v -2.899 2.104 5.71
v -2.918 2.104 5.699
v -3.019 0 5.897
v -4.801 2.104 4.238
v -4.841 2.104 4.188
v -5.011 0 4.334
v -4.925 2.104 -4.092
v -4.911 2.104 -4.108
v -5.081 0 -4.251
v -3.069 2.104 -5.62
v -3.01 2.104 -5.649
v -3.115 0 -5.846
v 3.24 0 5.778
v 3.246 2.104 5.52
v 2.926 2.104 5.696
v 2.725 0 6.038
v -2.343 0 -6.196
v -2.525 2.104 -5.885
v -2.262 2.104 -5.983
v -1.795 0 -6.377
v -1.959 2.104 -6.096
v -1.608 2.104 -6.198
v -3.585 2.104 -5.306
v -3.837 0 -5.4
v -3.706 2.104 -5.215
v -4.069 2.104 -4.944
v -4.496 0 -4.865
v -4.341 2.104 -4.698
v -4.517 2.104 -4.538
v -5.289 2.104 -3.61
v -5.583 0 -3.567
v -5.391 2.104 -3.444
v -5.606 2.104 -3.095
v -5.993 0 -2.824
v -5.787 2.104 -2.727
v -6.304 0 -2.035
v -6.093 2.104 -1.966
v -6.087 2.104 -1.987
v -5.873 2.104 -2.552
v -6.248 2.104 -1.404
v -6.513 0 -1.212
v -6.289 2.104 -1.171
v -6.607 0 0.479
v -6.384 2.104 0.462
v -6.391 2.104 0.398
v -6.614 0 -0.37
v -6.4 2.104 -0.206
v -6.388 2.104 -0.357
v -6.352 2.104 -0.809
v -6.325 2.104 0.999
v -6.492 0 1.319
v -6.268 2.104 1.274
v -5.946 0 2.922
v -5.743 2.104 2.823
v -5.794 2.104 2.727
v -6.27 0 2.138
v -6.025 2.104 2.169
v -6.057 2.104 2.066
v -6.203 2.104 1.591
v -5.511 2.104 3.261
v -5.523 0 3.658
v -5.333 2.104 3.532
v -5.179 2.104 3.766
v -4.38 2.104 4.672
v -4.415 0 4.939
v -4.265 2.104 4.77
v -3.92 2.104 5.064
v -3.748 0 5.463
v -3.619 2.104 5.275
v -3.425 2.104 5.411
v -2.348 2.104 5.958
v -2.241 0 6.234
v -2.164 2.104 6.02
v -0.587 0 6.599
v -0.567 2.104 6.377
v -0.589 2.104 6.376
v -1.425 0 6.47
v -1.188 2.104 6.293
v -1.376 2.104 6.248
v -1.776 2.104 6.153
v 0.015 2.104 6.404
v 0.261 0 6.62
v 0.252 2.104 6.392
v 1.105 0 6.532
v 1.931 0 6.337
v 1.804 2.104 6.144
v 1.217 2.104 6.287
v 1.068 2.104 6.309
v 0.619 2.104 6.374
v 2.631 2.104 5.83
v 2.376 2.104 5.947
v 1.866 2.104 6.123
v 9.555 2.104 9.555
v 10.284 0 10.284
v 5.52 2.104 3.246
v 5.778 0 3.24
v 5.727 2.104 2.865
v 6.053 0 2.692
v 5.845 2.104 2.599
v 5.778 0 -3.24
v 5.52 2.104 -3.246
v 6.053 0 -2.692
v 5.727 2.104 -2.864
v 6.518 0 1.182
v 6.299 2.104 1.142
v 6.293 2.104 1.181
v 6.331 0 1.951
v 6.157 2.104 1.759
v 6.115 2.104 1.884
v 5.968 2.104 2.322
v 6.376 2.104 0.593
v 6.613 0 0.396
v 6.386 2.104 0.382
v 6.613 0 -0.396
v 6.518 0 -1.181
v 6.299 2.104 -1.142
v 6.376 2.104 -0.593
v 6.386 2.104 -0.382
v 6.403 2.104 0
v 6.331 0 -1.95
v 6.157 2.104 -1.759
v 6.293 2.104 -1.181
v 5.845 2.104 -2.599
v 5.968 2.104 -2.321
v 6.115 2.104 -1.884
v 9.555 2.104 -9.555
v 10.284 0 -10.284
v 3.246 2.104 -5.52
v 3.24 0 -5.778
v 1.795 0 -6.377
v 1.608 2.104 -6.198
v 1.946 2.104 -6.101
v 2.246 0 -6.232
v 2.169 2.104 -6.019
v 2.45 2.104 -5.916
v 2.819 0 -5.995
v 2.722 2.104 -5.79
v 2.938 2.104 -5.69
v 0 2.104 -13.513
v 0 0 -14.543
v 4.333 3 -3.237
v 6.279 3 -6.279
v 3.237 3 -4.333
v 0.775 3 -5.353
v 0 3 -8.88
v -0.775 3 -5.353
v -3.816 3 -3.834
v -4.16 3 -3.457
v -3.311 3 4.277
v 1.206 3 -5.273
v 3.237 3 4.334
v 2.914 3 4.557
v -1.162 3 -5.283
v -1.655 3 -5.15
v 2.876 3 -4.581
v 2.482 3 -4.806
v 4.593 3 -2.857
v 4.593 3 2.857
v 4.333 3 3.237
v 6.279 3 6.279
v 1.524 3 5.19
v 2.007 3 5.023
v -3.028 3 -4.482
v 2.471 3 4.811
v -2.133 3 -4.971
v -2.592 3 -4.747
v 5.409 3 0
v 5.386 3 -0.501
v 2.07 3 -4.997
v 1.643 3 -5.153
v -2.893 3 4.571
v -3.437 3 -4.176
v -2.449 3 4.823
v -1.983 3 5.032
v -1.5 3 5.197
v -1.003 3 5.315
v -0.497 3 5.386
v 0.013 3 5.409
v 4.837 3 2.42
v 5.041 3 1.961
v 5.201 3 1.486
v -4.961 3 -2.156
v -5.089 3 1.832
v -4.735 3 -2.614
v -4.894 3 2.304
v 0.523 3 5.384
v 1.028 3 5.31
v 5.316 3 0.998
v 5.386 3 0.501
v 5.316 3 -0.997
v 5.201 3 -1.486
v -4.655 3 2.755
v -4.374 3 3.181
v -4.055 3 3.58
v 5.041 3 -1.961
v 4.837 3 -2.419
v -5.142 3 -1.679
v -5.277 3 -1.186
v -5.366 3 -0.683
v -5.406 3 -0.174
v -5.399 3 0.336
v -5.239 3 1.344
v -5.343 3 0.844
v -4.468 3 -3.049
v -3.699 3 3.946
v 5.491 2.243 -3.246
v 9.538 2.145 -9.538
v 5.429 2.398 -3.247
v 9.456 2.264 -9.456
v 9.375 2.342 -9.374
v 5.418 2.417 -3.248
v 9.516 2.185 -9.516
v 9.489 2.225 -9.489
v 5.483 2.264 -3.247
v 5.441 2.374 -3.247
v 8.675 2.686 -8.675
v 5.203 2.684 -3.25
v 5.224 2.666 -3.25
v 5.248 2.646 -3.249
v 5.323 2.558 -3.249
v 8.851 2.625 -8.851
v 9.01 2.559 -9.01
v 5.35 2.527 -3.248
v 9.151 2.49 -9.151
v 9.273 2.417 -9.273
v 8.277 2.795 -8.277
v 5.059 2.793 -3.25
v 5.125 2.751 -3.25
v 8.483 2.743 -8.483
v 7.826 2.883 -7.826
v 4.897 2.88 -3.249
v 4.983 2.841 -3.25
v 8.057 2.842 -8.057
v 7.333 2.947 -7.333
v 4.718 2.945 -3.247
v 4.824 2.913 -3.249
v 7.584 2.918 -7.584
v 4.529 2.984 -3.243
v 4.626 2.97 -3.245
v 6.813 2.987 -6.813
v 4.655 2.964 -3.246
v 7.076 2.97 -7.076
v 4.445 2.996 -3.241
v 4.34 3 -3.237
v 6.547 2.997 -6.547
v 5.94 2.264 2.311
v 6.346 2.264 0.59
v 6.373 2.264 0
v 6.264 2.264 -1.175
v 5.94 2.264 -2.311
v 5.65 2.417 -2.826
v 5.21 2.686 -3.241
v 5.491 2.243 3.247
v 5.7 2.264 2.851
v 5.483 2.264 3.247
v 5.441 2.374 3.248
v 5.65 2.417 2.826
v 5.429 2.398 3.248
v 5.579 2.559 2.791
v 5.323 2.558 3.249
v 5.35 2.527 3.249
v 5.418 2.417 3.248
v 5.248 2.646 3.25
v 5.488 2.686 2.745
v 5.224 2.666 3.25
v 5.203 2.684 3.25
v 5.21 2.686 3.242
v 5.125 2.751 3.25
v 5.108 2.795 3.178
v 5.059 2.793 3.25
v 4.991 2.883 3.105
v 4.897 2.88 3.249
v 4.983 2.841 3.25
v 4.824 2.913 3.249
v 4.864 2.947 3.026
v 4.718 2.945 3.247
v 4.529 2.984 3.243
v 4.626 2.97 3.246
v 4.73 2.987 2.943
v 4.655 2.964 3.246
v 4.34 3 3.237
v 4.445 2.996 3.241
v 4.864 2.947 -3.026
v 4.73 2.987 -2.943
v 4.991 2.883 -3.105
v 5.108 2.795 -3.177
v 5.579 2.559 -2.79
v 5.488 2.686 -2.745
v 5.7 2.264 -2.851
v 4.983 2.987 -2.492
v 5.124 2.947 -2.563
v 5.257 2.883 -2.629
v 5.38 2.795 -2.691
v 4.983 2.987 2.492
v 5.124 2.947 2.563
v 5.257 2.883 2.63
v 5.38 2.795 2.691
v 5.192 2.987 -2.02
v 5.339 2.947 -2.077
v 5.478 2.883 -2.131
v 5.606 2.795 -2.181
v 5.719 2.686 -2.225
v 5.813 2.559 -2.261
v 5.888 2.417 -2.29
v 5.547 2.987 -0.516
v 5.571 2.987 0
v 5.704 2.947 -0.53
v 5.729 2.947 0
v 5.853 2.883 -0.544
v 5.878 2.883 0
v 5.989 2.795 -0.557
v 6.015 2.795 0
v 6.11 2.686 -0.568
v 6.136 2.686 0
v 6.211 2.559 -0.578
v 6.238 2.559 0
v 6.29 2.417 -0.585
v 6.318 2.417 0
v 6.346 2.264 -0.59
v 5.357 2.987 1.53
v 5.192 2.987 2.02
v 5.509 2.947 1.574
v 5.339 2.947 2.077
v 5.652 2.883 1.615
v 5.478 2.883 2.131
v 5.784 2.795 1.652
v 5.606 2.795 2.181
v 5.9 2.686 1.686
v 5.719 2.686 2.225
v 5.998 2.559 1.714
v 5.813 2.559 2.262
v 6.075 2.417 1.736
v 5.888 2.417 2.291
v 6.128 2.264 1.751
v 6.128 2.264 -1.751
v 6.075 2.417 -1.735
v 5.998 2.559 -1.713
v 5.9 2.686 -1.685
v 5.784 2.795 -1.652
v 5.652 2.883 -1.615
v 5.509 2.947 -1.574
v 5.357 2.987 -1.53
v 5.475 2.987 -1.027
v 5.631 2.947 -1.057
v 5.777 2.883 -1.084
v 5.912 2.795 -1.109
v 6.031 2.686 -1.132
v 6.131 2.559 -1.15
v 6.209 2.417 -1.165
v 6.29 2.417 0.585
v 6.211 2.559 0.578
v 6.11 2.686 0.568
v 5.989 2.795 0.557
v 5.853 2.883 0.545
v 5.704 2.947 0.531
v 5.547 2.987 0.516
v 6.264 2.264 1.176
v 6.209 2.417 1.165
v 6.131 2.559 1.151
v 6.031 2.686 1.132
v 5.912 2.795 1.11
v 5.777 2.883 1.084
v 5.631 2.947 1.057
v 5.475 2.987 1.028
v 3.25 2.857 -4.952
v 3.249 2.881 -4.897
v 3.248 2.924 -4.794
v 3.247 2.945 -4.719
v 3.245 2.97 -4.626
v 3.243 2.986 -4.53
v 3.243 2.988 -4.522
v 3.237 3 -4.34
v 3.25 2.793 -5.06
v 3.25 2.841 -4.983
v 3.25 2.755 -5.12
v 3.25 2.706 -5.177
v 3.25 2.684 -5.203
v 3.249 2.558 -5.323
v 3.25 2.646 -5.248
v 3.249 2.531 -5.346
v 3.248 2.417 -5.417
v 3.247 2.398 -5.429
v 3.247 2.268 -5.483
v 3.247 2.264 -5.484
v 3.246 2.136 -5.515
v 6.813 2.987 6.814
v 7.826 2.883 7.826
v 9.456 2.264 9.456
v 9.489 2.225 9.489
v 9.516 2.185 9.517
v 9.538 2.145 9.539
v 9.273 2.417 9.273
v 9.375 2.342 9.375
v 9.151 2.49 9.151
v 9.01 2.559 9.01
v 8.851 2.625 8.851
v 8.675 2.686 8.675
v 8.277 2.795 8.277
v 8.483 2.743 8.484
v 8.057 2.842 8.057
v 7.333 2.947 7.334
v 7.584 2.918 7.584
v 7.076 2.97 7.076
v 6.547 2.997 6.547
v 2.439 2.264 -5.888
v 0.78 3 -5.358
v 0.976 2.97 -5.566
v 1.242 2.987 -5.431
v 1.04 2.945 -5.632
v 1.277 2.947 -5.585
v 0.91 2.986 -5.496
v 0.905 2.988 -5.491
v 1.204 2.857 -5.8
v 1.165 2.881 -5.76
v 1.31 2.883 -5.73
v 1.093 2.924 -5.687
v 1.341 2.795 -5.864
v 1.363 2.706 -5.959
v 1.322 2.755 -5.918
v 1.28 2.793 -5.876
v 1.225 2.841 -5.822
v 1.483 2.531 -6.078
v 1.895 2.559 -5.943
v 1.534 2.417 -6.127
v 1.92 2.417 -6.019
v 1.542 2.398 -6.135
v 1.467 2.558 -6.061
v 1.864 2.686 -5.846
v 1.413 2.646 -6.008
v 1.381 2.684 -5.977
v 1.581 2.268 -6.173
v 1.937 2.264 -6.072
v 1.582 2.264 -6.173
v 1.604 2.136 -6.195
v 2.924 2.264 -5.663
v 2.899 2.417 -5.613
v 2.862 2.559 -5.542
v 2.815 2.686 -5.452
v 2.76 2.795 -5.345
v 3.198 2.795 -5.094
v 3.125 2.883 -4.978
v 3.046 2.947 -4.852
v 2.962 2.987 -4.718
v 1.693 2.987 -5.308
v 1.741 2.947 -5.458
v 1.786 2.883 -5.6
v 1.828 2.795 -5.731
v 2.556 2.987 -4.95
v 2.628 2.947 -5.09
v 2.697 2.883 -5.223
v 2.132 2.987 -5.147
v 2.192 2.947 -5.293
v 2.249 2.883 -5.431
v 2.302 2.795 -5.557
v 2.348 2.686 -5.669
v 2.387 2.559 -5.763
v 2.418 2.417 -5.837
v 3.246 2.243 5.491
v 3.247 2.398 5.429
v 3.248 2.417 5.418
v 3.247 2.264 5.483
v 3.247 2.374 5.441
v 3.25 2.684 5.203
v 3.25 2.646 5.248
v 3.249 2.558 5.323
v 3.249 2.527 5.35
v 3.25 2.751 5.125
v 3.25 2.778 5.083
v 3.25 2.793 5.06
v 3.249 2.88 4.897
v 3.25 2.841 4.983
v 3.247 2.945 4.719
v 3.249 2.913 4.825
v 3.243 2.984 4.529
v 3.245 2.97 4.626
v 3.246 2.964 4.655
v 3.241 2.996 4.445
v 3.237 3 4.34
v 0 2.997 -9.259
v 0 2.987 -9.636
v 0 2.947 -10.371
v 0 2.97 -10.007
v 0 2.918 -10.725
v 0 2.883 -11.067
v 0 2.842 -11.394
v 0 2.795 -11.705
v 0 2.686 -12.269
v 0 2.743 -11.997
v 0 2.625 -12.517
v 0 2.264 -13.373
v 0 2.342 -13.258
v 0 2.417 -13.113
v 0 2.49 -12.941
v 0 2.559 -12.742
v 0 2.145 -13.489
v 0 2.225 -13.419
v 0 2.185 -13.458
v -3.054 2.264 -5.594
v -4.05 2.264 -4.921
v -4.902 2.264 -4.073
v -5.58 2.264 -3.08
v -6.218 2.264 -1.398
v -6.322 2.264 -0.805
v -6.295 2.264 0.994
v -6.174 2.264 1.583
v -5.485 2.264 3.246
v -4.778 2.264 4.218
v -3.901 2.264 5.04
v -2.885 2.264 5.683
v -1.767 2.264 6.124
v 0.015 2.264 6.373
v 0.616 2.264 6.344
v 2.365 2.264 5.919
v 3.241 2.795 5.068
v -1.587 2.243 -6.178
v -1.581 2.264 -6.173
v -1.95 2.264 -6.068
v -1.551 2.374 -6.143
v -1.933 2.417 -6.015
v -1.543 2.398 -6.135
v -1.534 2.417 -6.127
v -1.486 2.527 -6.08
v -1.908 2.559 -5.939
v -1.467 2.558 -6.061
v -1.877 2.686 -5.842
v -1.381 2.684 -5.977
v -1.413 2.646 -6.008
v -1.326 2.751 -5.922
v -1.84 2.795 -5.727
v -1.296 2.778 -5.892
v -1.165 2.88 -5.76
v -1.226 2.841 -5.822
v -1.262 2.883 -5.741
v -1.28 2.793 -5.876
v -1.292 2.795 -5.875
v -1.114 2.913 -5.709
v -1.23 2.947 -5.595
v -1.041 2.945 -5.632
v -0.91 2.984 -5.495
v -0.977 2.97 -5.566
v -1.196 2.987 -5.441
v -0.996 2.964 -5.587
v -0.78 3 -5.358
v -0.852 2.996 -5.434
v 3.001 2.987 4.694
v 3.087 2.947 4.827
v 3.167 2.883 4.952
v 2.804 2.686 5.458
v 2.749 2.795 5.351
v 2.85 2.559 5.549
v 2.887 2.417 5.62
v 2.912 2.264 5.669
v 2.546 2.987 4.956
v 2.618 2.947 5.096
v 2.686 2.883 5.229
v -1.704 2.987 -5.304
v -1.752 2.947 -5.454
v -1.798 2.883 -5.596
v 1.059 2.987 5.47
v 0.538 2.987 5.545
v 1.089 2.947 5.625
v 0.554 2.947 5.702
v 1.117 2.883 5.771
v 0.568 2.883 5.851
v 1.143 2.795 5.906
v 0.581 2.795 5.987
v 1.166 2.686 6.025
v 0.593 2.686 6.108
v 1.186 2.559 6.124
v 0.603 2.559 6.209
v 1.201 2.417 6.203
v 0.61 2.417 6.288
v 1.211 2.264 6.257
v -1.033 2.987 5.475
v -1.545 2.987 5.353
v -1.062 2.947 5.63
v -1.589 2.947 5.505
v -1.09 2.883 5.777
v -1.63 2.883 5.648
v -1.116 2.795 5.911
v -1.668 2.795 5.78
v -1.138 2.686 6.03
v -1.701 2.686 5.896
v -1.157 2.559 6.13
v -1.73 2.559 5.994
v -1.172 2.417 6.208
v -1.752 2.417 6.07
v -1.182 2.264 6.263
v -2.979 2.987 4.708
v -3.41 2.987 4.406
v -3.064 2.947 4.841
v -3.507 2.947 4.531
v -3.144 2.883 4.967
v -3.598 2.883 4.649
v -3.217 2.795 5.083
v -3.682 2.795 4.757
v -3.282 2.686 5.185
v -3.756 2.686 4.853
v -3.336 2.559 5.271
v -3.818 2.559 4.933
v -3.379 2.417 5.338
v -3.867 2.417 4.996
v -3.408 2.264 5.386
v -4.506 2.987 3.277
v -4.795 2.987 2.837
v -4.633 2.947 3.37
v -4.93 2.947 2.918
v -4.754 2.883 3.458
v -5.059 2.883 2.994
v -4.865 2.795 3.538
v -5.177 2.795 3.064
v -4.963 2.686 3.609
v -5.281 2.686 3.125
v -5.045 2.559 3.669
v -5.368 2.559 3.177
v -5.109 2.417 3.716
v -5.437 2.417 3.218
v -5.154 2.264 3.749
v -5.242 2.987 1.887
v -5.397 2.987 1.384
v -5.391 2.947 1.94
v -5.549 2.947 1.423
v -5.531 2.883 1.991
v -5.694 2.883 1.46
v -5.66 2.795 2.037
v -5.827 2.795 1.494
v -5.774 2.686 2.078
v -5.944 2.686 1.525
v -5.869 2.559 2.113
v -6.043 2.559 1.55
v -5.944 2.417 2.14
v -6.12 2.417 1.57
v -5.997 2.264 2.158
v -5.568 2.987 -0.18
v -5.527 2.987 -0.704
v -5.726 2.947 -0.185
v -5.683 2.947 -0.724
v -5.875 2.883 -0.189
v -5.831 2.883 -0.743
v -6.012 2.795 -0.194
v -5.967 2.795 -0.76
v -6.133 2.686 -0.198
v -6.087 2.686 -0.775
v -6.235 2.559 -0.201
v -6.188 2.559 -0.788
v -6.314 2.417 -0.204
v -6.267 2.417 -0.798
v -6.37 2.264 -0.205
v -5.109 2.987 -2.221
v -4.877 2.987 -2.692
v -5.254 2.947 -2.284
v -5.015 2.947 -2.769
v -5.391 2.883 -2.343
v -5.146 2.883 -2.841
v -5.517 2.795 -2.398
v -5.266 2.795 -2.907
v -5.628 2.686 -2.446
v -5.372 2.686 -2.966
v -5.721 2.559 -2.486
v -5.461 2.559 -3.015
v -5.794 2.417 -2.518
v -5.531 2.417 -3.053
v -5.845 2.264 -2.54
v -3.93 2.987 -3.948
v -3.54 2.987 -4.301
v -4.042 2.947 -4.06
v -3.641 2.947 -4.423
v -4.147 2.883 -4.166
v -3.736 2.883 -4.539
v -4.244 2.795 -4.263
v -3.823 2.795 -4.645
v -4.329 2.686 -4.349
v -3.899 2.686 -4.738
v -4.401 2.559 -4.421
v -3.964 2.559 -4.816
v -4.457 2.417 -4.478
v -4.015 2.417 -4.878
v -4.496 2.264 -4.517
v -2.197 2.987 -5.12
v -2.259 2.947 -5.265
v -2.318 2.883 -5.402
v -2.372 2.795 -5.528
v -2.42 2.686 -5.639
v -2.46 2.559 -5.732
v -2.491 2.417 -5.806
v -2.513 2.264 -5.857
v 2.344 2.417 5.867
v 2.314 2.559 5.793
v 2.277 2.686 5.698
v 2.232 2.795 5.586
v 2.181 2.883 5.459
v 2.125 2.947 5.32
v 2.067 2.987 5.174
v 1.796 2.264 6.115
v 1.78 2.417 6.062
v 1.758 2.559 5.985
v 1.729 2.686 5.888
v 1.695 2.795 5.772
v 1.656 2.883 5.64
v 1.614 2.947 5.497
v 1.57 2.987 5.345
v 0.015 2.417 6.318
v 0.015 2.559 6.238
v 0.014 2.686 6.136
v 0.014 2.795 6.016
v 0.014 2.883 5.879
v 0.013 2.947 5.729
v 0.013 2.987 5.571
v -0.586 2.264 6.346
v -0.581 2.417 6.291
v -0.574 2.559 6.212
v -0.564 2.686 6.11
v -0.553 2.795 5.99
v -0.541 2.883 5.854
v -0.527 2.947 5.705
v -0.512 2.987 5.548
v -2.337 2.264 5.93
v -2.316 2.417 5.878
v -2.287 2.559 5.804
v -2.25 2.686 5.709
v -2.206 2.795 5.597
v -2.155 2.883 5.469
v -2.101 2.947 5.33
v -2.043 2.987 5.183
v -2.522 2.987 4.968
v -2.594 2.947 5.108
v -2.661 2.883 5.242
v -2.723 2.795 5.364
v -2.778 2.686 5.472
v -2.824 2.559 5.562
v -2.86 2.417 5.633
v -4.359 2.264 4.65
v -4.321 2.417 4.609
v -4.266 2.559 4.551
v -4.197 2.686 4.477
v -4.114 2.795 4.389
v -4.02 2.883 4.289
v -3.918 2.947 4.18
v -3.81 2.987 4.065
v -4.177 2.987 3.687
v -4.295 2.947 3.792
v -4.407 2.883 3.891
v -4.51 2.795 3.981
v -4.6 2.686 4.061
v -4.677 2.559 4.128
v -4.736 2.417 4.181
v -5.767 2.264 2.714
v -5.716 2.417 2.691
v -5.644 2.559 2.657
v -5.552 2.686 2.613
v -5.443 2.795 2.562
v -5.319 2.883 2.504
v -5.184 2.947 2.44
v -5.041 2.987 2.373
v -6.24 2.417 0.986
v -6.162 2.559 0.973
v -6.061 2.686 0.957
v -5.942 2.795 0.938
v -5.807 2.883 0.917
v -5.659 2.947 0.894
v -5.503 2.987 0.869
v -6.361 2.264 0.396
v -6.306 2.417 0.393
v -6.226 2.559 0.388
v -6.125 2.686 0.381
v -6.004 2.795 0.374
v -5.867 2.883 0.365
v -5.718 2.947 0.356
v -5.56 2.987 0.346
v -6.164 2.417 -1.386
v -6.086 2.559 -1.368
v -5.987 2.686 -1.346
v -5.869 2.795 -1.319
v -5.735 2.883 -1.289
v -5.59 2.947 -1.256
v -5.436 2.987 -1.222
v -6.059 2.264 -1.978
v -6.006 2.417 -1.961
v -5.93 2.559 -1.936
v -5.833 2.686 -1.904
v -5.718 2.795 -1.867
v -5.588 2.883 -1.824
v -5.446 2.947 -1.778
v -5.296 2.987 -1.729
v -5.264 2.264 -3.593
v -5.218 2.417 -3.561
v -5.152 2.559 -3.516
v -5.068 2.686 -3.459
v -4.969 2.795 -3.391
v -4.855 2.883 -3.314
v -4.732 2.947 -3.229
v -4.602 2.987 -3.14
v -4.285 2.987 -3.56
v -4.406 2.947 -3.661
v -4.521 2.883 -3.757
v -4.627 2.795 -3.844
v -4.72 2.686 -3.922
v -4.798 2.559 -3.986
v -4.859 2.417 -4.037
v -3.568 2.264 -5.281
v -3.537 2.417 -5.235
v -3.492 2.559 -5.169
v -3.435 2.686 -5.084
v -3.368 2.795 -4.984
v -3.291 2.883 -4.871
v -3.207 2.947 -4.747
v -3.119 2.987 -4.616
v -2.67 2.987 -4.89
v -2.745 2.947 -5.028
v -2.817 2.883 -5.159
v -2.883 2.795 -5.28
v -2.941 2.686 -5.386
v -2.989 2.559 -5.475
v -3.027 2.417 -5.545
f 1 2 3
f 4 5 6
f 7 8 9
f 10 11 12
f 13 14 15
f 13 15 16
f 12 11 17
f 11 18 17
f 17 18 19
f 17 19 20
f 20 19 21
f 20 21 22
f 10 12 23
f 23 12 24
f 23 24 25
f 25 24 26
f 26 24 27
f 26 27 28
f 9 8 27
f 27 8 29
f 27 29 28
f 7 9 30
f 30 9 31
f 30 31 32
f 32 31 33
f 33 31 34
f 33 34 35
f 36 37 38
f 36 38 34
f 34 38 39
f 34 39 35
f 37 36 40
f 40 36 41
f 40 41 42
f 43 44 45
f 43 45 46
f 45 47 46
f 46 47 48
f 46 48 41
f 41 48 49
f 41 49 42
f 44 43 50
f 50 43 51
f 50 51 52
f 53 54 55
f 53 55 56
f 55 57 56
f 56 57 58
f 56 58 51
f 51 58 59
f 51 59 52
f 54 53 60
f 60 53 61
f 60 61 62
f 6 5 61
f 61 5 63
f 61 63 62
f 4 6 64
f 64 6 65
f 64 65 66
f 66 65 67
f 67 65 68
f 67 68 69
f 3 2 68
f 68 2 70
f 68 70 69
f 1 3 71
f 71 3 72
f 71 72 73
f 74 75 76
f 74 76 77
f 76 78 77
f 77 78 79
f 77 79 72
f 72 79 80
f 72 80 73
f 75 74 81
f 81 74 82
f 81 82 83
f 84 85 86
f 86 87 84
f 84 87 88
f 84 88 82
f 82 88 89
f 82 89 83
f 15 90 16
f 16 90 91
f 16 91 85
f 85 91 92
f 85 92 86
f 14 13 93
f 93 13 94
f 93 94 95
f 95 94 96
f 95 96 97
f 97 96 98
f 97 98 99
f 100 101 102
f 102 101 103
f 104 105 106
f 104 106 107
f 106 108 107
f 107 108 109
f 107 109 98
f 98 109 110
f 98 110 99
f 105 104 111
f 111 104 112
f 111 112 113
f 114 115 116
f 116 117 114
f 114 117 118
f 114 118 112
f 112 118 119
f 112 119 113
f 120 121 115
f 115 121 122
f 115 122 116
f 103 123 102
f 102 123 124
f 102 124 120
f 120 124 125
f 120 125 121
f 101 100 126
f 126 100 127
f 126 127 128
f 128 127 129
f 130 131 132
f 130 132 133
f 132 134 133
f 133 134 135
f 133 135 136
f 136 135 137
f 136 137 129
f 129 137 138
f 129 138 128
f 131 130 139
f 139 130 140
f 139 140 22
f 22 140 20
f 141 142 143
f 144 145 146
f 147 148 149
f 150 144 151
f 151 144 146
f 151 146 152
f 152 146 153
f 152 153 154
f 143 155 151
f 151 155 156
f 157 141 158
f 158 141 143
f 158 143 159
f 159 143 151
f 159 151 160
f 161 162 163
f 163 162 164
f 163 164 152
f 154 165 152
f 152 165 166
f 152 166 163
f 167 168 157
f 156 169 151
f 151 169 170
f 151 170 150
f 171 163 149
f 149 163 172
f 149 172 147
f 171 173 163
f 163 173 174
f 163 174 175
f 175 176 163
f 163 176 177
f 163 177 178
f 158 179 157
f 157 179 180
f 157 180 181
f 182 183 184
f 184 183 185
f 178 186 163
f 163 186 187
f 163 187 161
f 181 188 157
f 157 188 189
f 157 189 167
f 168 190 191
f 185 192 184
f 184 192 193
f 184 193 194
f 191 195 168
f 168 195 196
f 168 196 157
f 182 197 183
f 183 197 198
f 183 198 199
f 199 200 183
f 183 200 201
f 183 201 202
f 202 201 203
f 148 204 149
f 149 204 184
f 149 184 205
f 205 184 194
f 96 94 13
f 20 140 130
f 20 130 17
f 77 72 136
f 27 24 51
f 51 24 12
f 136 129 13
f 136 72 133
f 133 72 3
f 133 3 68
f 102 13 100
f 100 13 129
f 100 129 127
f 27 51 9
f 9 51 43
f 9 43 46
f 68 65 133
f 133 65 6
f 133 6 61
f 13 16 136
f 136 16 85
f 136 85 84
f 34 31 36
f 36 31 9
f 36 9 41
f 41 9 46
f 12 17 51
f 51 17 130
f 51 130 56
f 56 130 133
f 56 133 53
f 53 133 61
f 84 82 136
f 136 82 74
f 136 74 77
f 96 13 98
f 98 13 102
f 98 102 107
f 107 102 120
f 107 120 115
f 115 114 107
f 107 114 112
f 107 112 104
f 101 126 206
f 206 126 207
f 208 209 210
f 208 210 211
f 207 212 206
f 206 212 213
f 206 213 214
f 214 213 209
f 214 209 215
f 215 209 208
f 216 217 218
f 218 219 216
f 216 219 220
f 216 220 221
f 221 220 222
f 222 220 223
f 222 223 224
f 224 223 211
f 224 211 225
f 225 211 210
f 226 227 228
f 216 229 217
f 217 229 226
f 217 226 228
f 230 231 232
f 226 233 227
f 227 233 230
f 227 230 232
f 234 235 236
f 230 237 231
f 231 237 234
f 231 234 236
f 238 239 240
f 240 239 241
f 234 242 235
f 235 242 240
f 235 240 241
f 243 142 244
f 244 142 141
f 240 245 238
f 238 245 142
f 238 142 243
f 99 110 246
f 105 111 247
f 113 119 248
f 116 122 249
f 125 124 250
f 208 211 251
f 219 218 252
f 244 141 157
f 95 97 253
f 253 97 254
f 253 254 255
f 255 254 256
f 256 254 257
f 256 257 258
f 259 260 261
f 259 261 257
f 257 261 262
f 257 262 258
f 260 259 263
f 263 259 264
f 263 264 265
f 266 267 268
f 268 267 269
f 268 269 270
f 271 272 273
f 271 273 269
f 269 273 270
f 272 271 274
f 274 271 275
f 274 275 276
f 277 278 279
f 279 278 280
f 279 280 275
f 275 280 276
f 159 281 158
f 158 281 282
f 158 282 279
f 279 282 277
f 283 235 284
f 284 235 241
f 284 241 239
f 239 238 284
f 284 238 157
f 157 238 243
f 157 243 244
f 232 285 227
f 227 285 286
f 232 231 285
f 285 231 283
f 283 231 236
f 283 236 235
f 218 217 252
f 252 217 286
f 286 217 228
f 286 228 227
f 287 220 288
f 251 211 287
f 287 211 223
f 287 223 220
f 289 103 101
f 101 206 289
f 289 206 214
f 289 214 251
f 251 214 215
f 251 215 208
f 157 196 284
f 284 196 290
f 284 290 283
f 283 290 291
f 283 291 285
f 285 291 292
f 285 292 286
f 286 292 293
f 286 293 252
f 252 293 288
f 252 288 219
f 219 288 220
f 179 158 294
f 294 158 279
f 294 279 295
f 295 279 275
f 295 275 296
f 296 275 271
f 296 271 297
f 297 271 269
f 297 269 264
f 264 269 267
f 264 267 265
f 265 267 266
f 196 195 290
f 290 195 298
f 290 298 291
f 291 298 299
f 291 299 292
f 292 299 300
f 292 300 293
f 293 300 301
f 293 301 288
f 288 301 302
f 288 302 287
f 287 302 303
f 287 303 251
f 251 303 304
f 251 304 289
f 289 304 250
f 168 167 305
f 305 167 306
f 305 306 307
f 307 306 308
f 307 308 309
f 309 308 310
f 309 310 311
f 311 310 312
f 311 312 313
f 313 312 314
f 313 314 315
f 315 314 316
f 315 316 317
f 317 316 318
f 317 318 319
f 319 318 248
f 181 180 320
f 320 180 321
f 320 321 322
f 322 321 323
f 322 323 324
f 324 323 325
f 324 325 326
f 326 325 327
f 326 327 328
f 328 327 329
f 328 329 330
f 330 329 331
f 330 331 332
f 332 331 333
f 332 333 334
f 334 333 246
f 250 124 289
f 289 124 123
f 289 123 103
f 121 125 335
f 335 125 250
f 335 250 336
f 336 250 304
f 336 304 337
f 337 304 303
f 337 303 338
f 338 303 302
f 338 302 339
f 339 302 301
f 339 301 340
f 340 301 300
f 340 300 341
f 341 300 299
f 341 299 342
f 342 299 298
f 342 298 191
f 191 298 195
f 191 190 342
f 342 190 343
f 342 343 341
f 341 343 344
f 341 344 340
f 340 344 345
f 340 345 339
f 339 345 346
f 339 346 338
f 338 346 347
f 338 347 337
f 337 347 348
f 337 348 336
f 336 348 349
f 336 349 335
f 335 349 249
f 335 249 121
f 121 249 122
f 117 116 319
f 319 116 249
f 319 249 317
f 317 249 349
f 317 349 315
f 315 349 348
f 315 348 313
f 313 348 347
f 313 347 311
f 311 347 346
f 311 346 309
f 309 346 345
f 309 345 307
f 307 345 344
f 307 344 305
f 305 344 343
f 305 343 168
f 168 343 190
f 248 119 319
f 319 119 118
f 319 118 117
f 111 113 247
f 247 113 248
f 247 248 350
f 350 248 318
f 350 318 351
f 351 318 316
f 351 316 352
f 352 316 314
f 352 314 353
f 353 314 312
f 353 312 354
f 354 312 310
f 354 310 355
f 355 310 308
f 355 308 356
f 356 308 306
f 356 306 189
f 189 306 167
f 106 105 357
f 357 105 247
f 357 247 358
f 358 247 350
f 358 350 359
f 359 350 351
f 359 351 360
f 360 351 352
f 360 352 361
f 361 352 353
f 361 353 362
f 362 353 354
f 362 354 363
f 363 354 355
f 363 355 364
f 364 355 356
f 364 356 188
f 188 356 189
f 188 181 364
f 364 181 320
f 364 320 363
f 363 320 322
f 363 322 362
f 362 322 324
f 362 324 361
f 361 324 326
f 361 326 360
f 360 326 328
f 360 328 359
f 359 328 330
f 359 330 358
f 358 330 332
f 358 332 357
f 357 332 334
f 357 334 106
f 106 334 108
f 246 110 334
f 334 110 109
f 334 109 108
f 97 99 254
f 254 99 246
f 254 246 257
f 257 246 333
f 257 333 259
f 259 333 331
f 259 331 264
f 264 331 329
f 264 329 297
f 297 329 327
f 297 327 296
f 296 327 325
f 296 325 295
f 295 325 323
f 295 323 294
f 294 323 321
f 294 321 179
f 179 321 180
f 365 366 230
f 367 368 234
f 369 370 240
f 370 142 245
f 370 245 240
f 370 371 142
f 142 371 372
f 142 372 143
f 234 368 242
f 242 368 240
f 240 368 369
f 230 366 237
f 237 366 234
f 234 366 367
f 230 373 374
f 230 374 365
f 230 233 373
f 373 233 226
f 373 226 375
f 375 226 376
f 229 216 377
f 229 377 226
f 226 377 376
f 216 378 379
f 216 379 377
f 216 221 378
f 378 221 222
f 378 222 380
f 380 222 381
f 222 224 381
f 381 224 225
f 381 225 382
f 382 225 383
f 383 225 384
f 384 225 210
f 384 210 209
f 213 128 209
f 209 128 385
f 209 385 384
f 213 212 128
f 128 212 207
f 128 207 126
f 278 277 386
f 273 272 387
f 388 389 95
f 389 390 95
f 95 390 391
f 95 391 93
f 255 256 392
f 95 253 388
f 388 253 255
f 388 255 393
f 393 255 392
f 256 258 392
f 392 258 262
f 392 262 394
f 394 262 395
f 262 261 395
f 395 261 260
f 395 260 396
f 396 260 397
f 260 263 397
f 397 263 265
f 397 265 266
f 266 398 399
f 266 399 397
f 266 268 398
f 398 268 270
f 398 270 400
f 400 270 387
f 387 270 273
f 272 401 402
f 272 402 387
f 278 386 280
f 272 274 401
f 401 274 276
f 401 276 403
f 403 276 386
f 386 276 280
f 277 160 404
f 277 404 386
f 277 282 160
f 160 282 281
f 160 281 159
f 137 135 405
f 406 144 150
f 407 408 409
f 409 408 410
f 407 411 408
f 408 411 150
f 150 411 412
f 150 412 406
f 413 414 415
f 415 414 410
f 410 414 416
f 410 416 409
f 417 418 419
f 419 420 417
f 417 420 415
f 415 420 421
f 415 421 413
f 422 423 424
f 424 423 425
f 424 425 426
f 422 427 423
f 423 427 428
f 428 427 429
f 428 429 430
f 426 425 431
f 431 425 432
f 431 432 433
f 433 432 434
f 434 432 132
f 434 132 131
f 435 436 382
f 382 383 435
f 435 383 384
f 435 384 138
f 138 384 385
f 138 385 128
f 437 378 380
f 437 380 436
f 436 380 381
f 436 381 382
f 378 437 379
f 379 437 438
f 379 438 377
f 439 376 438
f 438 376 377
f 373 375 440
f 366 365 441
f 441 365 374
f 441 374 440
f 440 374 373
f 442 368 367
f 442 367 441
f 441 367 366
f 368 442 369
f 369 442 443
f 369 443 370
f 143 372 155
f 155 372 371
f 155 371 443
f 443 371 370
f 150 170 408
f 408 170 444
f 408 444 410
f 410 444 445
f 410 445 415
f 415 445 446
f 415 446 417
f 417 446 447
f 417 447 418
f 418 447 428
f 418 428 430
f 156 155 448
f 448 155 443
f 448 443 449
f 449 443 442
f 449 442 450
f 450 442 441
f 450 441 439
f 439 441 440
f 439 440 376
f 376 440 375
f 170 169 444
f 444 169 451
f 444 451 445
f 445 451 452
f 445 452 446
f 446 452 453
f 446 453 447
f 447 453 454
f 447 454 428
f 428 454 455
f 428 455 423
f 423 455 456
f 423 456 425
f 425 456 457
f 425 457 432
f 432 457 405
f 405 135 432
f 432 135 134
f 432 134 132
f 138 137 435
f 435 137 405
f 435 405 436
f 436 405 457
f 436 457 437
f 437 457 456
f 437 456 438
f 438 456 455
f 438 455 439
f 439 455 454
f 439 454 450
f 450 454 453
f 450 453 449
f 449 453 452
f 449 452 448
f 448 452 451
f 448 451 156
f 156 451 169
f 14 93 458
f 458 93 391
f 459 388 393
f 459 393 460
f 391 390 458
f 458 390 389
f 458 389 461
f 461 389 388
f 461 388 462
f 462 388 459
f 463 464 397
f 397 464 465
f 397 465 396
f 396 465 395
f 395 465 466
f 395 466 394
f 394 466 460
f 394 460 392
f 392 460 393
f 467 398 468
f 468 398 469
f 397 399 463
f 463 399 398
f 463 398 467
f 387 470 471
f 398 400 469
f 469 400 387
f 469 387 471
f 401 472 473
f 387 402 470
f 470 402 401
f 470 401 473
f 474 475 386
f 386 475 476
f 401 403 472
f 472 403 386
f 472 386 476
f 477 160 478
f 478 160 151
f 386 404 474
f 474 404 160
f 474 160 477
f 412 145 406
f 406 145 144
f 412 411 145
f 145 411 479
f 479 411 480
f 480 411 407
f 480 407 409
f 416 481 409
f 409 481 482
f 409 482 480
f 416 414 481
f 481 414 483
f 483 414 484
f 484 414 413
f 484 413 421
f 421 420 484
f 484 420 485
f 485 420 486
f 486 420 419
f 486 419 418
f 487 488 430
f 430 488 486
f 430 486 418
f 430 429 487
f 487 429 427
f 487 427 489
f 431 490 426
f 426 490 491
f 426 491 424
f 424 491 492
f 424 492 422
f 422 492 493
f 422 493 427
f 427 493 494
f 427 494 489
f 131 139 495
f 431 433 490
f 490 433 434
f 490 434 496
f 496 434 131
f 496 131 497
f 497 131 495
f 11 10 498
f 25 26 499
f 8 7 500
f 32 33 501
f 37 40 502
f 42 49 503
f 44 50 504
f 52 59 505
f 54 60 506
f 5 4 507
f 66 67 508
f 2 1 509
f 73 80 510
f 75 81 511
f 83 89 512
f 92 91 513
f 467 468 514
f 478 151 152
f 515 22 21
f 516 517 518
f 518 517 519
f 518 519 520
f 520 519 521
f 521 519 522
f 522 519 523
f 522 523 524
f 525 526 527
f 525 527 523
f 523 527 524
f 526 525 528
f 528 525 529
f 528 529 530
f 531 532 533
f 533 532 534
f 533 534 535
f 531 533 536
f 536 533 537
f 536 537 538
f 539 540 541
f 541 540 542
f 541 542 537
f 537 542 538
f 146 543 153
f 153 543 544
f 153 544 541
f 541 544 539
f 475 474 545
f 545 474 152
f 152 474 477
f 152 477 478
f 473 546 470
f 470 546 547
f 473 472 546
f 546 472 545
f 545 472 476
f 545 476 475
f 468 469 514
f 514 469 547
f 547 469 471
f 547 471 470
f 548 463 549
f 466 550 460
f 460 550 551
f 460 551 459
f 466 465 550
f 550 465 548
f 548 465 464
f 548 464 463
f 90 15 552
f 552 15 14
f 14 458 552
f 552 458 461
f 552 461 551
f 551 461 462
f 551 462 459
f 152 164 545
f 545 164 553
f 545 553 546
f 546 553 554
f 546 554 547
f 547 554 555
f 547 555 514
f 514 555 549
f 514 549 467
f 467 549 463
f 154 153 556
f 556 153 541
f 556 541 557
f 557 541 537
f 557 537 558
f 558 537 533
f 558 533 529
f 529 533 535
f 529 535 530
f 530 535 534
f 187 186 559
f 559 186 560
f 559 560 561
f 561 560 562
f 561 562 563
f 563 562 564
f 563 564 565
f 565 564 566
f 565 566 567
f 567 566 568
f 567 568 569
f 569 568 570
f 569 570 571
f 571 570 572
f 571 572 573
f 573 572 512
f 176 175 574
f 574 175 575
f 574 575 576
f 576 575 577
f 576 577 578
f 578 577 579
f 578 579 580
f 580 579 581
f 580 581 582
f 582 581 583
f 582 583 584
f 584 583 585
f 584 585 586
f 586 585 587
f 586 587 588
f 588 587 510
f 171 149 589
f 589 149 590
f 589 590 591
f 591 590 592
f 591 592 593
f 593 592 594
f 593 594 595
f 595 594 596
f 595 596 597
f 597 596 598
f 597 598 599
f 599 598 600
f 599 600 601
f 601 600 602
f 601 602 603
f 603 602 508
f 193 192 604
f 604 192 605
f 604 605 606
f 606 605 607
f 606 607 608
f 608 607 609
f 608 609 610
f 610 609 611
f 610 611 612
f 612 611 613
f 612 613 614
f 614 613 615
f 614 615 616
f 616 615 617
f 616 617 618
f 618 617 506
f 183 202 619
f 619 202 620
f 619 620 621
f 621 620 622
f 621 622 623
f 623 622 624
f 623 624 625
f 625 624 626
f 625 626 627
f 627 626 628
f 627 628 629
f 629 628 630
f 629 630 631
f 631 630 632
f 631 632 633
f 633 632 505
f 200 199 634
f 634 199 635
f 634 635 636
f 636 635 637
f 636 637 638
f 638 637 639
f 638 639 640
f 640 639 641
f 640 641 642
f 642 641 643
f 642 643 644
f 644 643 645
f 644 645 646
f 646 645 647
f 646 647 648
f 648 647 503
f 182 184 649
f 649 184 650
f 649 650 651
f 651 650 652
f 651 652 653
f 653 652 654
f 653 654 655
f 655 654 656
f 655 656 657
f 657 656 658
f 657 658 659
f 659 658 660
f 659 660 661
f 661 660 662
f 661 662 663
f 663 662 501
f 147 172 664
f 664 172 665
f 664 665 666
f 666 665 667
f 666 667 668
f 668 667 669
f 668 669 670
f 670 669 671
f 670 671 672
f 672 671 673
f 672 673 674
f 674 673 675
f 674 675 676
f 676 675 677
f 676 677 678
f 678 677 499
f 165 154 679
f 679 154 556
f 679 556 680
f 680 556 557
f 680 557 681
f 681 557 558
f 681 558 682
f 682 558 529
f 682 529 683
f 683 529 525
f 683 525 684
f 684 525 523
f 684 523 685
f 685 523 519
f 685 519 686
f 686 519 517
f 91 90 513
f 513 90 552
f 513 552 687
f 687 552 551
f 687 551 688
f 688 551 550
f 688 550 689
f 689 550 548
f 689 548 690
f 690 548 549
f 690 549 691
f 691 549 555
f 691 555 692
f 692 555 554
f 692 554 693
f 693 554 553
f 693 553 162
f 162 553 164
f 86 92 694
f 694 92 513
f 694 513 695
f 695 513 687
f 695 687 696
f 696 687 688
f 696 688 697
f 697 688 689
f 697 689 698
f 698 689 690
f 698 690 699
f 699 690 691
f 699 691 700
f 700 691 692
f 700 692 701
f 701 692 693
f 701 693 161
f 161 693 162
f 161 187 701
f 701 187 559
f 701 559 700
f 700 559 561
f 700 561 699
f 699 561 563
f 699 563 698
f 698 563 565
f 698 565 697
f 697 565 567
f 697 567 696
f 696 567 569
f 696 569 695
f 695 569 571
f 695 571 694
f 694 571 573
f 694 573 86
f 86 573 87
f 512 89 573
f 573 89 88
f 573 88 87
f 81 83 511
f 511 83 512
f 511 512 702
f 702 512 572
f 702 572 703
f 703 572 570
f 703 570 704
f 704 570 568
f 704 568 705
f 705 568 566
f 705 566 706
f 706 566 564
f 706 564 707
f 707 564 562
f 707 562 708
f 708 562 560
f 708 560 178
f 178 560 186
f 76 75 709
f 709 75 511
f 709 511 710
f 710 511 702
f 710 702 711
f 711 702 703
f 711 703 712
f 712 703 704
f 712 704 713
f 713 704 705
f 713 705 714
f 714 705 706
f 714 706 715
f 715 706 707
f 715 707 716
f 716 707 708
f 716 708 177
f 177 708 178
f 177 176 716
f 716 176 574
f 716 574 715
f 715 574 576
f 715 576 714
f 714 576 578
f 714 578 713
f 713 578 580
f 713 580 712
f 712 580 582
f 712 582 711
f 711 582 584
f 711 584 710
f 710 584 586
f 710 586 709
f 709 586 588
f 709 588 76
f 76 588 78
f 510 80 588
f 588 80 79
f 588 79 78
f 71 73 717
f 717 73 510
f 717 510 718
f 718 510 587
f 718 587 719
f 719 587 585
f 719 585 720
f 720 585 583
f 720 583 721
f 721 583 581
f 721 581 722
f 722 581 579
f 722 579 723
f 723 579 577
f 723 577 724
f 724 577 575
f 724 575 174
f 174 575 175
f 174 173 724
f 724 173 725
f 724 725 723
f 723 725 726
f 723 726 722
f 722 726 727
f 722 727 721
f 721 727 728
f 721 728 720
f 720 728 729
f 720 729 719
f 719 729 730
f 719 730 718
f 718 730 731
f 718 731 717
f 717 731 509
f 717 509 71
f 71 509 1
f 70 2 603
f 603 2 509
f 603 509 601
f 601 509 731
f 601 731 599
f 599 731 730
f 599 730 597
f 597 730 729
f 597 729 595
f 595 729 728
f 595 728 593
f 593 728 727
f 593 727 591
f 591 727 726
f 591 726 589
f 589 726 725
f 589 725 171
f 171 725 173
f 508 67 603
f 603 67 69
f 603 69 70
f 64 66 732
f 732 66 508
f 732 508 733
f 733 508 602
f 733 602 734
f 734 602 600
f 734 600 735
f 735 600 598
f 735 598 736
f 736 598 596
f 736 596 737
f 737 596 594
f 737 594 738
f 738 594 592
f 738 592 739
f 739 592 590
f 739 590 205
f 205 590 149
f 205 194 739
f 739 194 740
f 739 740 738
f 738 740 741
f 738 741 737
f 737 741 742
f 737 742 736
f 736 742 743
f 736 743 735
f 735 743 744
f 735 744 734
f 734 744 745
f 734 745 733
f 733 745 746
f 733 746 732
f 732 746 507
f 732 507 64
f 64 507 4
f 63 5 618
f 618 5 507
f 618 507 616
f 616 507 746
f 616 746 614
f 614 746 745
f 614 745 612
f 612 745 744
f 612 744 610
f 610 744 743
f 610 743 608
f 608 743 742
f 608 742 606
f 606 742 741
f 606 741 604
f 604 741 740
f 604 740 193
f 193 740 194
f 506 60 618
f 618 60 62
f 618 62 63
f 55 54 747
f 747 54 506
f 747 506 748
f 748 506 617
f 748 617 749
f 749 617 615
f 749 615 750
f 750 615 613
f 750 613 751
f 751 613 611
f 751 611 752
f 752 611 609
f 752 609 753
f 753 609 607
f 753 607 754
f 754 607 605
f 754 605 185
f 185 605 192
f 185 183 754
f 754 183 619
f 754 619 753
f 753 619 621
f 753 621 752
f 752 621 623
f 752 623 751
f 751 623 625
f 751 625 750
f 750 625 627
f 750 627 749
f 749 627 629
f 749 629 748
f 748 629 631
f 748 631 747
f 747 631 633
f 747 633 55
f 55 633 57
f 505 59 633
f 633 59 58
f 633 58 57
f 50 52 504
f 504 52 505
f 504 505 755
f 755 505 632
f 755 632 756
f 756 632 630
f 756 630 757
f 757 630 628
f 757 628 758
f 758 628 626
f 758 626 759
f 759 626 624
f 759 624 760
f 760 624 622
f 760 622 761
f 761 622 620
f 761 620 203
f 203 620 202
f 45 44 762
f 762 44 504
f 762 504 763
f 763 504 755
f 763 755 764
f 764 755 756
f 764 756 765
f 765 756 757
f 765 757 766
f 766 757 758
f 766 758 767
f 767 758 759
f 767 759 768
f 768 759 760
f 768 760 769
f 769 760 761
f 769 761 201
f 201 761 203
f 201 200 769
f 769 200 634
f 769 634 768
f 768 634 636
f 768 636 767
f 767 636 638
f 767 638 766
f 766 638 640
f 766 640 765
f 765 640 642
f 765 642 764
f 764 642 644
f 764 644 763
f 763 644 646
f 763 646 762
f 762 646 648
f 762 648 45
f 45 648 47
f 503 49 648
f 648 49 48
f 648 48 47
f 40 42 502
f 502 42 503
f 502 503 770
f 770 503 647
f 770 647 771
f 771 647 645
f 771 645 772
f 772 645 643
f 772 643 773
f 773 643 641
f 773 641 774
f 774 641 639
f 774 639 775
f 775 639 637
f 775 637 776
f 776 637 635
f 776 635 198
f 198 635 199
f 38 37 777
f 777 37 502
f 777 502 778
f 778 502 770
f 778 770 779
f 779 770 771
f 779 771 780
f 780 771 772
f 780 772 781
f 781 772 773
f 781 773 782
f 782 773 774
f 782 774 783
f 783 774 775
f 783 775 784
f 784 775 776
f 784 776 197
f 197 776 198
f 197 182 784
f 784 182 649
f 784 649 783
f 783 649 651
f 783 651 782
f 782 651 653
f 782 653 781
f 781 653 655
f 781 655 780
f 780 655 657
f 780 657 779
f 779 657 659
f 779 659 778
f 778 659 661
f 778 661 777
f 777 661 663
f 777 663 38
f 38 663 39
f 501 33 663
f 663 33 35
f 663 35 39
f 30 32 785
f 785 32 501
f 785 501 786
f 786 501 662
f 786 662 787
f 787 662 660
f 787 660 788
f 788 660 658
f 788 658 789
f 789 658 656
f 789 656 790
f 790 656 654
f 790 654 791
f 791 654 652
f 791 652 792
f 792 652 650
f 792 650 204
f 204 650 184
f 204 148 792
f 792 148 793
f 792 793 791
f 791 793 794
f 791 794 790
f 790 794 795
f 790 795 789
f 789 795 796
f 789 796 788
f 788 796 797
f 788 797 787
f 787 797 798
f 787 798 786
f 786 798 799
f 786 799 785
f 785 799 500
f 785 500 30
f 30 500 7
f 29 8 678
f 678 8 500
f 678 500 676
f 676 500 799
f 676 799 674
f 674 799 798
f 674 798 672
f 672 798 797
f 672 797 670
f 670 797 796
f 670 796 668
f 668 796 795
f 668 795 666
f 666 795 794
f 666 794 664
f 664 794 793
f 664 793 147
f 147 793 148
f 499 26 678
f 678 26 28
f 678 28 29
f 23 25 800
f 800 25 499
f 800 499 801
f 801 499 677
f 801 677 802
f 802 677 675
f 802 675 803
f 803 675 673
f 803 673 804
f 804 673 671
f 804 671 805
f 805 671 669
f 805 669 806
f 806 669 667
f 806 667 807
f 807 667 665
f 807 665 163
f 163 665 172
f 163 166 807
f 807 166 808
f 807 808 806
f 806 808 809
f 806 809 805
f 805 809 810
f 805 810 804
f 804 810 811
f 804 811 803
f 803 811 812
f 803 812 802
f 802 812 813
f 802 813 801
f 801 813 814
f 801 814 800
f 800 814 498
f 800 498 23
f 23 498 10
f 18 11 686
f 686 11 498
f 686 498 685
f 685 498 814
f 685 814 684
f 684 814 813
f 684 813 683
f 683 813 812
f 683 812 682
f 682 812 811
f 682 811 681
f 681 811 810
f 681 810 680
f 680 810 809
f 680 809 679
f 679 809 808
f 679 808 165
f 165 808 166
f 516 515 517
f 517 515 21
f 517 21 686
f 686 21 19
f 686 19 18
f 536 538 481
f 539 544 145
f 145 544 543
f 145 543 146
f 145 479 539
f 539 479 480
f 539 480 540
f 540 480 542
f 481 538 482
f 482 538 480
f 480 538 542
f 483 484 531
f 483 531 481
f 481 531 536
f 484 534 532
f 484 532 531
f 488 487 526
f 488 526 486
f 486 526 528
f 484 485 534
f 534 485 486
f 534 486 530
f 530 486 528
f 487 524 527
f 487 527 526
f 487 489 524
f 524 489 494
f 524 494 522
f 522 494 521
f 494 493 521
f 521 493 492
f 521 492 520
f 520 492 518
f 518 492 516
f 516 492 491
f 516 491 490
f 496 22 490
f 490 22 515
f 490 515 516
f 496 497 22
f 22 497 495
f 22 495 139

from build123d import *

# Parameters (mm, degrees)
BOSS_EXTRUDE1_DEPTH = 3
BOSS_EXTRUDE1_TAPER = 6
FILLET1_R           = 1


with BuildPart() as part:
    # Sketch2 → Boss-Extrude1 (new body)
    with BuildSketch(Plane(origin=(0, 0, 0), x_dir=(1, 0, 0), z_dir=(0, 1, 0))):
        with BuildLine():
            Line((1.794958228, 6.376825284), (0, 14.54359673))
            Line((0, 14.54359673), (-1.794958228, 6.376825284))
            ThreePointArc((-1.794958228, 6.376825284), (-6.120363771, -2.535137681), (3.239869266, -5.778323536))
            Line((3.239869266, -5.778323536), (10.283875871, -10.283875871))
            Line((10.283875871, -10.283875871), (5.778323536, -3.239869266))
            ThreePointArc((5.778323536, -3.239869266), (6.624634009, 0), (5.778323536, 3.239869266))
            Line((5.778323536, 3.239869266), (10.283875871, 10.283875871))
            Line((10.283875871, 10.283875871), (3.239869266, 5.778323536))
            ThreePointArc((3.239869266, 5.778323536), (2.535137681, 6.120363771), (1.794958228, 6.376825284))
        make_face()
    extrude(amount=BOSS_EXTRUDE1_DEPTH, taper=BOSS_EXTRUDE1_TAPER)

    # Fillet1
    fillet1_edges = [part.edges().sort_by_distance(p)[0] for p in [
        (-5.829052816, 3, 2.414472732),
        (-0.764125431, 3, -9.598084382),
        (0.764125431, 3, -9.598084382),
        (2.414472732, 3, -5.829052816),
        (6.246552279, 3, -7.327188827),
        (7.327188827, 3, -6.246552279),
        (6.309321303, 3, 0),
        (7.327188827, 3, 6.246552279),
        (6.246552279, 3, 7.327188827),
    ]]
    fillet(fillet1_edges, radius=FILLET1_R)


solid = part.part
